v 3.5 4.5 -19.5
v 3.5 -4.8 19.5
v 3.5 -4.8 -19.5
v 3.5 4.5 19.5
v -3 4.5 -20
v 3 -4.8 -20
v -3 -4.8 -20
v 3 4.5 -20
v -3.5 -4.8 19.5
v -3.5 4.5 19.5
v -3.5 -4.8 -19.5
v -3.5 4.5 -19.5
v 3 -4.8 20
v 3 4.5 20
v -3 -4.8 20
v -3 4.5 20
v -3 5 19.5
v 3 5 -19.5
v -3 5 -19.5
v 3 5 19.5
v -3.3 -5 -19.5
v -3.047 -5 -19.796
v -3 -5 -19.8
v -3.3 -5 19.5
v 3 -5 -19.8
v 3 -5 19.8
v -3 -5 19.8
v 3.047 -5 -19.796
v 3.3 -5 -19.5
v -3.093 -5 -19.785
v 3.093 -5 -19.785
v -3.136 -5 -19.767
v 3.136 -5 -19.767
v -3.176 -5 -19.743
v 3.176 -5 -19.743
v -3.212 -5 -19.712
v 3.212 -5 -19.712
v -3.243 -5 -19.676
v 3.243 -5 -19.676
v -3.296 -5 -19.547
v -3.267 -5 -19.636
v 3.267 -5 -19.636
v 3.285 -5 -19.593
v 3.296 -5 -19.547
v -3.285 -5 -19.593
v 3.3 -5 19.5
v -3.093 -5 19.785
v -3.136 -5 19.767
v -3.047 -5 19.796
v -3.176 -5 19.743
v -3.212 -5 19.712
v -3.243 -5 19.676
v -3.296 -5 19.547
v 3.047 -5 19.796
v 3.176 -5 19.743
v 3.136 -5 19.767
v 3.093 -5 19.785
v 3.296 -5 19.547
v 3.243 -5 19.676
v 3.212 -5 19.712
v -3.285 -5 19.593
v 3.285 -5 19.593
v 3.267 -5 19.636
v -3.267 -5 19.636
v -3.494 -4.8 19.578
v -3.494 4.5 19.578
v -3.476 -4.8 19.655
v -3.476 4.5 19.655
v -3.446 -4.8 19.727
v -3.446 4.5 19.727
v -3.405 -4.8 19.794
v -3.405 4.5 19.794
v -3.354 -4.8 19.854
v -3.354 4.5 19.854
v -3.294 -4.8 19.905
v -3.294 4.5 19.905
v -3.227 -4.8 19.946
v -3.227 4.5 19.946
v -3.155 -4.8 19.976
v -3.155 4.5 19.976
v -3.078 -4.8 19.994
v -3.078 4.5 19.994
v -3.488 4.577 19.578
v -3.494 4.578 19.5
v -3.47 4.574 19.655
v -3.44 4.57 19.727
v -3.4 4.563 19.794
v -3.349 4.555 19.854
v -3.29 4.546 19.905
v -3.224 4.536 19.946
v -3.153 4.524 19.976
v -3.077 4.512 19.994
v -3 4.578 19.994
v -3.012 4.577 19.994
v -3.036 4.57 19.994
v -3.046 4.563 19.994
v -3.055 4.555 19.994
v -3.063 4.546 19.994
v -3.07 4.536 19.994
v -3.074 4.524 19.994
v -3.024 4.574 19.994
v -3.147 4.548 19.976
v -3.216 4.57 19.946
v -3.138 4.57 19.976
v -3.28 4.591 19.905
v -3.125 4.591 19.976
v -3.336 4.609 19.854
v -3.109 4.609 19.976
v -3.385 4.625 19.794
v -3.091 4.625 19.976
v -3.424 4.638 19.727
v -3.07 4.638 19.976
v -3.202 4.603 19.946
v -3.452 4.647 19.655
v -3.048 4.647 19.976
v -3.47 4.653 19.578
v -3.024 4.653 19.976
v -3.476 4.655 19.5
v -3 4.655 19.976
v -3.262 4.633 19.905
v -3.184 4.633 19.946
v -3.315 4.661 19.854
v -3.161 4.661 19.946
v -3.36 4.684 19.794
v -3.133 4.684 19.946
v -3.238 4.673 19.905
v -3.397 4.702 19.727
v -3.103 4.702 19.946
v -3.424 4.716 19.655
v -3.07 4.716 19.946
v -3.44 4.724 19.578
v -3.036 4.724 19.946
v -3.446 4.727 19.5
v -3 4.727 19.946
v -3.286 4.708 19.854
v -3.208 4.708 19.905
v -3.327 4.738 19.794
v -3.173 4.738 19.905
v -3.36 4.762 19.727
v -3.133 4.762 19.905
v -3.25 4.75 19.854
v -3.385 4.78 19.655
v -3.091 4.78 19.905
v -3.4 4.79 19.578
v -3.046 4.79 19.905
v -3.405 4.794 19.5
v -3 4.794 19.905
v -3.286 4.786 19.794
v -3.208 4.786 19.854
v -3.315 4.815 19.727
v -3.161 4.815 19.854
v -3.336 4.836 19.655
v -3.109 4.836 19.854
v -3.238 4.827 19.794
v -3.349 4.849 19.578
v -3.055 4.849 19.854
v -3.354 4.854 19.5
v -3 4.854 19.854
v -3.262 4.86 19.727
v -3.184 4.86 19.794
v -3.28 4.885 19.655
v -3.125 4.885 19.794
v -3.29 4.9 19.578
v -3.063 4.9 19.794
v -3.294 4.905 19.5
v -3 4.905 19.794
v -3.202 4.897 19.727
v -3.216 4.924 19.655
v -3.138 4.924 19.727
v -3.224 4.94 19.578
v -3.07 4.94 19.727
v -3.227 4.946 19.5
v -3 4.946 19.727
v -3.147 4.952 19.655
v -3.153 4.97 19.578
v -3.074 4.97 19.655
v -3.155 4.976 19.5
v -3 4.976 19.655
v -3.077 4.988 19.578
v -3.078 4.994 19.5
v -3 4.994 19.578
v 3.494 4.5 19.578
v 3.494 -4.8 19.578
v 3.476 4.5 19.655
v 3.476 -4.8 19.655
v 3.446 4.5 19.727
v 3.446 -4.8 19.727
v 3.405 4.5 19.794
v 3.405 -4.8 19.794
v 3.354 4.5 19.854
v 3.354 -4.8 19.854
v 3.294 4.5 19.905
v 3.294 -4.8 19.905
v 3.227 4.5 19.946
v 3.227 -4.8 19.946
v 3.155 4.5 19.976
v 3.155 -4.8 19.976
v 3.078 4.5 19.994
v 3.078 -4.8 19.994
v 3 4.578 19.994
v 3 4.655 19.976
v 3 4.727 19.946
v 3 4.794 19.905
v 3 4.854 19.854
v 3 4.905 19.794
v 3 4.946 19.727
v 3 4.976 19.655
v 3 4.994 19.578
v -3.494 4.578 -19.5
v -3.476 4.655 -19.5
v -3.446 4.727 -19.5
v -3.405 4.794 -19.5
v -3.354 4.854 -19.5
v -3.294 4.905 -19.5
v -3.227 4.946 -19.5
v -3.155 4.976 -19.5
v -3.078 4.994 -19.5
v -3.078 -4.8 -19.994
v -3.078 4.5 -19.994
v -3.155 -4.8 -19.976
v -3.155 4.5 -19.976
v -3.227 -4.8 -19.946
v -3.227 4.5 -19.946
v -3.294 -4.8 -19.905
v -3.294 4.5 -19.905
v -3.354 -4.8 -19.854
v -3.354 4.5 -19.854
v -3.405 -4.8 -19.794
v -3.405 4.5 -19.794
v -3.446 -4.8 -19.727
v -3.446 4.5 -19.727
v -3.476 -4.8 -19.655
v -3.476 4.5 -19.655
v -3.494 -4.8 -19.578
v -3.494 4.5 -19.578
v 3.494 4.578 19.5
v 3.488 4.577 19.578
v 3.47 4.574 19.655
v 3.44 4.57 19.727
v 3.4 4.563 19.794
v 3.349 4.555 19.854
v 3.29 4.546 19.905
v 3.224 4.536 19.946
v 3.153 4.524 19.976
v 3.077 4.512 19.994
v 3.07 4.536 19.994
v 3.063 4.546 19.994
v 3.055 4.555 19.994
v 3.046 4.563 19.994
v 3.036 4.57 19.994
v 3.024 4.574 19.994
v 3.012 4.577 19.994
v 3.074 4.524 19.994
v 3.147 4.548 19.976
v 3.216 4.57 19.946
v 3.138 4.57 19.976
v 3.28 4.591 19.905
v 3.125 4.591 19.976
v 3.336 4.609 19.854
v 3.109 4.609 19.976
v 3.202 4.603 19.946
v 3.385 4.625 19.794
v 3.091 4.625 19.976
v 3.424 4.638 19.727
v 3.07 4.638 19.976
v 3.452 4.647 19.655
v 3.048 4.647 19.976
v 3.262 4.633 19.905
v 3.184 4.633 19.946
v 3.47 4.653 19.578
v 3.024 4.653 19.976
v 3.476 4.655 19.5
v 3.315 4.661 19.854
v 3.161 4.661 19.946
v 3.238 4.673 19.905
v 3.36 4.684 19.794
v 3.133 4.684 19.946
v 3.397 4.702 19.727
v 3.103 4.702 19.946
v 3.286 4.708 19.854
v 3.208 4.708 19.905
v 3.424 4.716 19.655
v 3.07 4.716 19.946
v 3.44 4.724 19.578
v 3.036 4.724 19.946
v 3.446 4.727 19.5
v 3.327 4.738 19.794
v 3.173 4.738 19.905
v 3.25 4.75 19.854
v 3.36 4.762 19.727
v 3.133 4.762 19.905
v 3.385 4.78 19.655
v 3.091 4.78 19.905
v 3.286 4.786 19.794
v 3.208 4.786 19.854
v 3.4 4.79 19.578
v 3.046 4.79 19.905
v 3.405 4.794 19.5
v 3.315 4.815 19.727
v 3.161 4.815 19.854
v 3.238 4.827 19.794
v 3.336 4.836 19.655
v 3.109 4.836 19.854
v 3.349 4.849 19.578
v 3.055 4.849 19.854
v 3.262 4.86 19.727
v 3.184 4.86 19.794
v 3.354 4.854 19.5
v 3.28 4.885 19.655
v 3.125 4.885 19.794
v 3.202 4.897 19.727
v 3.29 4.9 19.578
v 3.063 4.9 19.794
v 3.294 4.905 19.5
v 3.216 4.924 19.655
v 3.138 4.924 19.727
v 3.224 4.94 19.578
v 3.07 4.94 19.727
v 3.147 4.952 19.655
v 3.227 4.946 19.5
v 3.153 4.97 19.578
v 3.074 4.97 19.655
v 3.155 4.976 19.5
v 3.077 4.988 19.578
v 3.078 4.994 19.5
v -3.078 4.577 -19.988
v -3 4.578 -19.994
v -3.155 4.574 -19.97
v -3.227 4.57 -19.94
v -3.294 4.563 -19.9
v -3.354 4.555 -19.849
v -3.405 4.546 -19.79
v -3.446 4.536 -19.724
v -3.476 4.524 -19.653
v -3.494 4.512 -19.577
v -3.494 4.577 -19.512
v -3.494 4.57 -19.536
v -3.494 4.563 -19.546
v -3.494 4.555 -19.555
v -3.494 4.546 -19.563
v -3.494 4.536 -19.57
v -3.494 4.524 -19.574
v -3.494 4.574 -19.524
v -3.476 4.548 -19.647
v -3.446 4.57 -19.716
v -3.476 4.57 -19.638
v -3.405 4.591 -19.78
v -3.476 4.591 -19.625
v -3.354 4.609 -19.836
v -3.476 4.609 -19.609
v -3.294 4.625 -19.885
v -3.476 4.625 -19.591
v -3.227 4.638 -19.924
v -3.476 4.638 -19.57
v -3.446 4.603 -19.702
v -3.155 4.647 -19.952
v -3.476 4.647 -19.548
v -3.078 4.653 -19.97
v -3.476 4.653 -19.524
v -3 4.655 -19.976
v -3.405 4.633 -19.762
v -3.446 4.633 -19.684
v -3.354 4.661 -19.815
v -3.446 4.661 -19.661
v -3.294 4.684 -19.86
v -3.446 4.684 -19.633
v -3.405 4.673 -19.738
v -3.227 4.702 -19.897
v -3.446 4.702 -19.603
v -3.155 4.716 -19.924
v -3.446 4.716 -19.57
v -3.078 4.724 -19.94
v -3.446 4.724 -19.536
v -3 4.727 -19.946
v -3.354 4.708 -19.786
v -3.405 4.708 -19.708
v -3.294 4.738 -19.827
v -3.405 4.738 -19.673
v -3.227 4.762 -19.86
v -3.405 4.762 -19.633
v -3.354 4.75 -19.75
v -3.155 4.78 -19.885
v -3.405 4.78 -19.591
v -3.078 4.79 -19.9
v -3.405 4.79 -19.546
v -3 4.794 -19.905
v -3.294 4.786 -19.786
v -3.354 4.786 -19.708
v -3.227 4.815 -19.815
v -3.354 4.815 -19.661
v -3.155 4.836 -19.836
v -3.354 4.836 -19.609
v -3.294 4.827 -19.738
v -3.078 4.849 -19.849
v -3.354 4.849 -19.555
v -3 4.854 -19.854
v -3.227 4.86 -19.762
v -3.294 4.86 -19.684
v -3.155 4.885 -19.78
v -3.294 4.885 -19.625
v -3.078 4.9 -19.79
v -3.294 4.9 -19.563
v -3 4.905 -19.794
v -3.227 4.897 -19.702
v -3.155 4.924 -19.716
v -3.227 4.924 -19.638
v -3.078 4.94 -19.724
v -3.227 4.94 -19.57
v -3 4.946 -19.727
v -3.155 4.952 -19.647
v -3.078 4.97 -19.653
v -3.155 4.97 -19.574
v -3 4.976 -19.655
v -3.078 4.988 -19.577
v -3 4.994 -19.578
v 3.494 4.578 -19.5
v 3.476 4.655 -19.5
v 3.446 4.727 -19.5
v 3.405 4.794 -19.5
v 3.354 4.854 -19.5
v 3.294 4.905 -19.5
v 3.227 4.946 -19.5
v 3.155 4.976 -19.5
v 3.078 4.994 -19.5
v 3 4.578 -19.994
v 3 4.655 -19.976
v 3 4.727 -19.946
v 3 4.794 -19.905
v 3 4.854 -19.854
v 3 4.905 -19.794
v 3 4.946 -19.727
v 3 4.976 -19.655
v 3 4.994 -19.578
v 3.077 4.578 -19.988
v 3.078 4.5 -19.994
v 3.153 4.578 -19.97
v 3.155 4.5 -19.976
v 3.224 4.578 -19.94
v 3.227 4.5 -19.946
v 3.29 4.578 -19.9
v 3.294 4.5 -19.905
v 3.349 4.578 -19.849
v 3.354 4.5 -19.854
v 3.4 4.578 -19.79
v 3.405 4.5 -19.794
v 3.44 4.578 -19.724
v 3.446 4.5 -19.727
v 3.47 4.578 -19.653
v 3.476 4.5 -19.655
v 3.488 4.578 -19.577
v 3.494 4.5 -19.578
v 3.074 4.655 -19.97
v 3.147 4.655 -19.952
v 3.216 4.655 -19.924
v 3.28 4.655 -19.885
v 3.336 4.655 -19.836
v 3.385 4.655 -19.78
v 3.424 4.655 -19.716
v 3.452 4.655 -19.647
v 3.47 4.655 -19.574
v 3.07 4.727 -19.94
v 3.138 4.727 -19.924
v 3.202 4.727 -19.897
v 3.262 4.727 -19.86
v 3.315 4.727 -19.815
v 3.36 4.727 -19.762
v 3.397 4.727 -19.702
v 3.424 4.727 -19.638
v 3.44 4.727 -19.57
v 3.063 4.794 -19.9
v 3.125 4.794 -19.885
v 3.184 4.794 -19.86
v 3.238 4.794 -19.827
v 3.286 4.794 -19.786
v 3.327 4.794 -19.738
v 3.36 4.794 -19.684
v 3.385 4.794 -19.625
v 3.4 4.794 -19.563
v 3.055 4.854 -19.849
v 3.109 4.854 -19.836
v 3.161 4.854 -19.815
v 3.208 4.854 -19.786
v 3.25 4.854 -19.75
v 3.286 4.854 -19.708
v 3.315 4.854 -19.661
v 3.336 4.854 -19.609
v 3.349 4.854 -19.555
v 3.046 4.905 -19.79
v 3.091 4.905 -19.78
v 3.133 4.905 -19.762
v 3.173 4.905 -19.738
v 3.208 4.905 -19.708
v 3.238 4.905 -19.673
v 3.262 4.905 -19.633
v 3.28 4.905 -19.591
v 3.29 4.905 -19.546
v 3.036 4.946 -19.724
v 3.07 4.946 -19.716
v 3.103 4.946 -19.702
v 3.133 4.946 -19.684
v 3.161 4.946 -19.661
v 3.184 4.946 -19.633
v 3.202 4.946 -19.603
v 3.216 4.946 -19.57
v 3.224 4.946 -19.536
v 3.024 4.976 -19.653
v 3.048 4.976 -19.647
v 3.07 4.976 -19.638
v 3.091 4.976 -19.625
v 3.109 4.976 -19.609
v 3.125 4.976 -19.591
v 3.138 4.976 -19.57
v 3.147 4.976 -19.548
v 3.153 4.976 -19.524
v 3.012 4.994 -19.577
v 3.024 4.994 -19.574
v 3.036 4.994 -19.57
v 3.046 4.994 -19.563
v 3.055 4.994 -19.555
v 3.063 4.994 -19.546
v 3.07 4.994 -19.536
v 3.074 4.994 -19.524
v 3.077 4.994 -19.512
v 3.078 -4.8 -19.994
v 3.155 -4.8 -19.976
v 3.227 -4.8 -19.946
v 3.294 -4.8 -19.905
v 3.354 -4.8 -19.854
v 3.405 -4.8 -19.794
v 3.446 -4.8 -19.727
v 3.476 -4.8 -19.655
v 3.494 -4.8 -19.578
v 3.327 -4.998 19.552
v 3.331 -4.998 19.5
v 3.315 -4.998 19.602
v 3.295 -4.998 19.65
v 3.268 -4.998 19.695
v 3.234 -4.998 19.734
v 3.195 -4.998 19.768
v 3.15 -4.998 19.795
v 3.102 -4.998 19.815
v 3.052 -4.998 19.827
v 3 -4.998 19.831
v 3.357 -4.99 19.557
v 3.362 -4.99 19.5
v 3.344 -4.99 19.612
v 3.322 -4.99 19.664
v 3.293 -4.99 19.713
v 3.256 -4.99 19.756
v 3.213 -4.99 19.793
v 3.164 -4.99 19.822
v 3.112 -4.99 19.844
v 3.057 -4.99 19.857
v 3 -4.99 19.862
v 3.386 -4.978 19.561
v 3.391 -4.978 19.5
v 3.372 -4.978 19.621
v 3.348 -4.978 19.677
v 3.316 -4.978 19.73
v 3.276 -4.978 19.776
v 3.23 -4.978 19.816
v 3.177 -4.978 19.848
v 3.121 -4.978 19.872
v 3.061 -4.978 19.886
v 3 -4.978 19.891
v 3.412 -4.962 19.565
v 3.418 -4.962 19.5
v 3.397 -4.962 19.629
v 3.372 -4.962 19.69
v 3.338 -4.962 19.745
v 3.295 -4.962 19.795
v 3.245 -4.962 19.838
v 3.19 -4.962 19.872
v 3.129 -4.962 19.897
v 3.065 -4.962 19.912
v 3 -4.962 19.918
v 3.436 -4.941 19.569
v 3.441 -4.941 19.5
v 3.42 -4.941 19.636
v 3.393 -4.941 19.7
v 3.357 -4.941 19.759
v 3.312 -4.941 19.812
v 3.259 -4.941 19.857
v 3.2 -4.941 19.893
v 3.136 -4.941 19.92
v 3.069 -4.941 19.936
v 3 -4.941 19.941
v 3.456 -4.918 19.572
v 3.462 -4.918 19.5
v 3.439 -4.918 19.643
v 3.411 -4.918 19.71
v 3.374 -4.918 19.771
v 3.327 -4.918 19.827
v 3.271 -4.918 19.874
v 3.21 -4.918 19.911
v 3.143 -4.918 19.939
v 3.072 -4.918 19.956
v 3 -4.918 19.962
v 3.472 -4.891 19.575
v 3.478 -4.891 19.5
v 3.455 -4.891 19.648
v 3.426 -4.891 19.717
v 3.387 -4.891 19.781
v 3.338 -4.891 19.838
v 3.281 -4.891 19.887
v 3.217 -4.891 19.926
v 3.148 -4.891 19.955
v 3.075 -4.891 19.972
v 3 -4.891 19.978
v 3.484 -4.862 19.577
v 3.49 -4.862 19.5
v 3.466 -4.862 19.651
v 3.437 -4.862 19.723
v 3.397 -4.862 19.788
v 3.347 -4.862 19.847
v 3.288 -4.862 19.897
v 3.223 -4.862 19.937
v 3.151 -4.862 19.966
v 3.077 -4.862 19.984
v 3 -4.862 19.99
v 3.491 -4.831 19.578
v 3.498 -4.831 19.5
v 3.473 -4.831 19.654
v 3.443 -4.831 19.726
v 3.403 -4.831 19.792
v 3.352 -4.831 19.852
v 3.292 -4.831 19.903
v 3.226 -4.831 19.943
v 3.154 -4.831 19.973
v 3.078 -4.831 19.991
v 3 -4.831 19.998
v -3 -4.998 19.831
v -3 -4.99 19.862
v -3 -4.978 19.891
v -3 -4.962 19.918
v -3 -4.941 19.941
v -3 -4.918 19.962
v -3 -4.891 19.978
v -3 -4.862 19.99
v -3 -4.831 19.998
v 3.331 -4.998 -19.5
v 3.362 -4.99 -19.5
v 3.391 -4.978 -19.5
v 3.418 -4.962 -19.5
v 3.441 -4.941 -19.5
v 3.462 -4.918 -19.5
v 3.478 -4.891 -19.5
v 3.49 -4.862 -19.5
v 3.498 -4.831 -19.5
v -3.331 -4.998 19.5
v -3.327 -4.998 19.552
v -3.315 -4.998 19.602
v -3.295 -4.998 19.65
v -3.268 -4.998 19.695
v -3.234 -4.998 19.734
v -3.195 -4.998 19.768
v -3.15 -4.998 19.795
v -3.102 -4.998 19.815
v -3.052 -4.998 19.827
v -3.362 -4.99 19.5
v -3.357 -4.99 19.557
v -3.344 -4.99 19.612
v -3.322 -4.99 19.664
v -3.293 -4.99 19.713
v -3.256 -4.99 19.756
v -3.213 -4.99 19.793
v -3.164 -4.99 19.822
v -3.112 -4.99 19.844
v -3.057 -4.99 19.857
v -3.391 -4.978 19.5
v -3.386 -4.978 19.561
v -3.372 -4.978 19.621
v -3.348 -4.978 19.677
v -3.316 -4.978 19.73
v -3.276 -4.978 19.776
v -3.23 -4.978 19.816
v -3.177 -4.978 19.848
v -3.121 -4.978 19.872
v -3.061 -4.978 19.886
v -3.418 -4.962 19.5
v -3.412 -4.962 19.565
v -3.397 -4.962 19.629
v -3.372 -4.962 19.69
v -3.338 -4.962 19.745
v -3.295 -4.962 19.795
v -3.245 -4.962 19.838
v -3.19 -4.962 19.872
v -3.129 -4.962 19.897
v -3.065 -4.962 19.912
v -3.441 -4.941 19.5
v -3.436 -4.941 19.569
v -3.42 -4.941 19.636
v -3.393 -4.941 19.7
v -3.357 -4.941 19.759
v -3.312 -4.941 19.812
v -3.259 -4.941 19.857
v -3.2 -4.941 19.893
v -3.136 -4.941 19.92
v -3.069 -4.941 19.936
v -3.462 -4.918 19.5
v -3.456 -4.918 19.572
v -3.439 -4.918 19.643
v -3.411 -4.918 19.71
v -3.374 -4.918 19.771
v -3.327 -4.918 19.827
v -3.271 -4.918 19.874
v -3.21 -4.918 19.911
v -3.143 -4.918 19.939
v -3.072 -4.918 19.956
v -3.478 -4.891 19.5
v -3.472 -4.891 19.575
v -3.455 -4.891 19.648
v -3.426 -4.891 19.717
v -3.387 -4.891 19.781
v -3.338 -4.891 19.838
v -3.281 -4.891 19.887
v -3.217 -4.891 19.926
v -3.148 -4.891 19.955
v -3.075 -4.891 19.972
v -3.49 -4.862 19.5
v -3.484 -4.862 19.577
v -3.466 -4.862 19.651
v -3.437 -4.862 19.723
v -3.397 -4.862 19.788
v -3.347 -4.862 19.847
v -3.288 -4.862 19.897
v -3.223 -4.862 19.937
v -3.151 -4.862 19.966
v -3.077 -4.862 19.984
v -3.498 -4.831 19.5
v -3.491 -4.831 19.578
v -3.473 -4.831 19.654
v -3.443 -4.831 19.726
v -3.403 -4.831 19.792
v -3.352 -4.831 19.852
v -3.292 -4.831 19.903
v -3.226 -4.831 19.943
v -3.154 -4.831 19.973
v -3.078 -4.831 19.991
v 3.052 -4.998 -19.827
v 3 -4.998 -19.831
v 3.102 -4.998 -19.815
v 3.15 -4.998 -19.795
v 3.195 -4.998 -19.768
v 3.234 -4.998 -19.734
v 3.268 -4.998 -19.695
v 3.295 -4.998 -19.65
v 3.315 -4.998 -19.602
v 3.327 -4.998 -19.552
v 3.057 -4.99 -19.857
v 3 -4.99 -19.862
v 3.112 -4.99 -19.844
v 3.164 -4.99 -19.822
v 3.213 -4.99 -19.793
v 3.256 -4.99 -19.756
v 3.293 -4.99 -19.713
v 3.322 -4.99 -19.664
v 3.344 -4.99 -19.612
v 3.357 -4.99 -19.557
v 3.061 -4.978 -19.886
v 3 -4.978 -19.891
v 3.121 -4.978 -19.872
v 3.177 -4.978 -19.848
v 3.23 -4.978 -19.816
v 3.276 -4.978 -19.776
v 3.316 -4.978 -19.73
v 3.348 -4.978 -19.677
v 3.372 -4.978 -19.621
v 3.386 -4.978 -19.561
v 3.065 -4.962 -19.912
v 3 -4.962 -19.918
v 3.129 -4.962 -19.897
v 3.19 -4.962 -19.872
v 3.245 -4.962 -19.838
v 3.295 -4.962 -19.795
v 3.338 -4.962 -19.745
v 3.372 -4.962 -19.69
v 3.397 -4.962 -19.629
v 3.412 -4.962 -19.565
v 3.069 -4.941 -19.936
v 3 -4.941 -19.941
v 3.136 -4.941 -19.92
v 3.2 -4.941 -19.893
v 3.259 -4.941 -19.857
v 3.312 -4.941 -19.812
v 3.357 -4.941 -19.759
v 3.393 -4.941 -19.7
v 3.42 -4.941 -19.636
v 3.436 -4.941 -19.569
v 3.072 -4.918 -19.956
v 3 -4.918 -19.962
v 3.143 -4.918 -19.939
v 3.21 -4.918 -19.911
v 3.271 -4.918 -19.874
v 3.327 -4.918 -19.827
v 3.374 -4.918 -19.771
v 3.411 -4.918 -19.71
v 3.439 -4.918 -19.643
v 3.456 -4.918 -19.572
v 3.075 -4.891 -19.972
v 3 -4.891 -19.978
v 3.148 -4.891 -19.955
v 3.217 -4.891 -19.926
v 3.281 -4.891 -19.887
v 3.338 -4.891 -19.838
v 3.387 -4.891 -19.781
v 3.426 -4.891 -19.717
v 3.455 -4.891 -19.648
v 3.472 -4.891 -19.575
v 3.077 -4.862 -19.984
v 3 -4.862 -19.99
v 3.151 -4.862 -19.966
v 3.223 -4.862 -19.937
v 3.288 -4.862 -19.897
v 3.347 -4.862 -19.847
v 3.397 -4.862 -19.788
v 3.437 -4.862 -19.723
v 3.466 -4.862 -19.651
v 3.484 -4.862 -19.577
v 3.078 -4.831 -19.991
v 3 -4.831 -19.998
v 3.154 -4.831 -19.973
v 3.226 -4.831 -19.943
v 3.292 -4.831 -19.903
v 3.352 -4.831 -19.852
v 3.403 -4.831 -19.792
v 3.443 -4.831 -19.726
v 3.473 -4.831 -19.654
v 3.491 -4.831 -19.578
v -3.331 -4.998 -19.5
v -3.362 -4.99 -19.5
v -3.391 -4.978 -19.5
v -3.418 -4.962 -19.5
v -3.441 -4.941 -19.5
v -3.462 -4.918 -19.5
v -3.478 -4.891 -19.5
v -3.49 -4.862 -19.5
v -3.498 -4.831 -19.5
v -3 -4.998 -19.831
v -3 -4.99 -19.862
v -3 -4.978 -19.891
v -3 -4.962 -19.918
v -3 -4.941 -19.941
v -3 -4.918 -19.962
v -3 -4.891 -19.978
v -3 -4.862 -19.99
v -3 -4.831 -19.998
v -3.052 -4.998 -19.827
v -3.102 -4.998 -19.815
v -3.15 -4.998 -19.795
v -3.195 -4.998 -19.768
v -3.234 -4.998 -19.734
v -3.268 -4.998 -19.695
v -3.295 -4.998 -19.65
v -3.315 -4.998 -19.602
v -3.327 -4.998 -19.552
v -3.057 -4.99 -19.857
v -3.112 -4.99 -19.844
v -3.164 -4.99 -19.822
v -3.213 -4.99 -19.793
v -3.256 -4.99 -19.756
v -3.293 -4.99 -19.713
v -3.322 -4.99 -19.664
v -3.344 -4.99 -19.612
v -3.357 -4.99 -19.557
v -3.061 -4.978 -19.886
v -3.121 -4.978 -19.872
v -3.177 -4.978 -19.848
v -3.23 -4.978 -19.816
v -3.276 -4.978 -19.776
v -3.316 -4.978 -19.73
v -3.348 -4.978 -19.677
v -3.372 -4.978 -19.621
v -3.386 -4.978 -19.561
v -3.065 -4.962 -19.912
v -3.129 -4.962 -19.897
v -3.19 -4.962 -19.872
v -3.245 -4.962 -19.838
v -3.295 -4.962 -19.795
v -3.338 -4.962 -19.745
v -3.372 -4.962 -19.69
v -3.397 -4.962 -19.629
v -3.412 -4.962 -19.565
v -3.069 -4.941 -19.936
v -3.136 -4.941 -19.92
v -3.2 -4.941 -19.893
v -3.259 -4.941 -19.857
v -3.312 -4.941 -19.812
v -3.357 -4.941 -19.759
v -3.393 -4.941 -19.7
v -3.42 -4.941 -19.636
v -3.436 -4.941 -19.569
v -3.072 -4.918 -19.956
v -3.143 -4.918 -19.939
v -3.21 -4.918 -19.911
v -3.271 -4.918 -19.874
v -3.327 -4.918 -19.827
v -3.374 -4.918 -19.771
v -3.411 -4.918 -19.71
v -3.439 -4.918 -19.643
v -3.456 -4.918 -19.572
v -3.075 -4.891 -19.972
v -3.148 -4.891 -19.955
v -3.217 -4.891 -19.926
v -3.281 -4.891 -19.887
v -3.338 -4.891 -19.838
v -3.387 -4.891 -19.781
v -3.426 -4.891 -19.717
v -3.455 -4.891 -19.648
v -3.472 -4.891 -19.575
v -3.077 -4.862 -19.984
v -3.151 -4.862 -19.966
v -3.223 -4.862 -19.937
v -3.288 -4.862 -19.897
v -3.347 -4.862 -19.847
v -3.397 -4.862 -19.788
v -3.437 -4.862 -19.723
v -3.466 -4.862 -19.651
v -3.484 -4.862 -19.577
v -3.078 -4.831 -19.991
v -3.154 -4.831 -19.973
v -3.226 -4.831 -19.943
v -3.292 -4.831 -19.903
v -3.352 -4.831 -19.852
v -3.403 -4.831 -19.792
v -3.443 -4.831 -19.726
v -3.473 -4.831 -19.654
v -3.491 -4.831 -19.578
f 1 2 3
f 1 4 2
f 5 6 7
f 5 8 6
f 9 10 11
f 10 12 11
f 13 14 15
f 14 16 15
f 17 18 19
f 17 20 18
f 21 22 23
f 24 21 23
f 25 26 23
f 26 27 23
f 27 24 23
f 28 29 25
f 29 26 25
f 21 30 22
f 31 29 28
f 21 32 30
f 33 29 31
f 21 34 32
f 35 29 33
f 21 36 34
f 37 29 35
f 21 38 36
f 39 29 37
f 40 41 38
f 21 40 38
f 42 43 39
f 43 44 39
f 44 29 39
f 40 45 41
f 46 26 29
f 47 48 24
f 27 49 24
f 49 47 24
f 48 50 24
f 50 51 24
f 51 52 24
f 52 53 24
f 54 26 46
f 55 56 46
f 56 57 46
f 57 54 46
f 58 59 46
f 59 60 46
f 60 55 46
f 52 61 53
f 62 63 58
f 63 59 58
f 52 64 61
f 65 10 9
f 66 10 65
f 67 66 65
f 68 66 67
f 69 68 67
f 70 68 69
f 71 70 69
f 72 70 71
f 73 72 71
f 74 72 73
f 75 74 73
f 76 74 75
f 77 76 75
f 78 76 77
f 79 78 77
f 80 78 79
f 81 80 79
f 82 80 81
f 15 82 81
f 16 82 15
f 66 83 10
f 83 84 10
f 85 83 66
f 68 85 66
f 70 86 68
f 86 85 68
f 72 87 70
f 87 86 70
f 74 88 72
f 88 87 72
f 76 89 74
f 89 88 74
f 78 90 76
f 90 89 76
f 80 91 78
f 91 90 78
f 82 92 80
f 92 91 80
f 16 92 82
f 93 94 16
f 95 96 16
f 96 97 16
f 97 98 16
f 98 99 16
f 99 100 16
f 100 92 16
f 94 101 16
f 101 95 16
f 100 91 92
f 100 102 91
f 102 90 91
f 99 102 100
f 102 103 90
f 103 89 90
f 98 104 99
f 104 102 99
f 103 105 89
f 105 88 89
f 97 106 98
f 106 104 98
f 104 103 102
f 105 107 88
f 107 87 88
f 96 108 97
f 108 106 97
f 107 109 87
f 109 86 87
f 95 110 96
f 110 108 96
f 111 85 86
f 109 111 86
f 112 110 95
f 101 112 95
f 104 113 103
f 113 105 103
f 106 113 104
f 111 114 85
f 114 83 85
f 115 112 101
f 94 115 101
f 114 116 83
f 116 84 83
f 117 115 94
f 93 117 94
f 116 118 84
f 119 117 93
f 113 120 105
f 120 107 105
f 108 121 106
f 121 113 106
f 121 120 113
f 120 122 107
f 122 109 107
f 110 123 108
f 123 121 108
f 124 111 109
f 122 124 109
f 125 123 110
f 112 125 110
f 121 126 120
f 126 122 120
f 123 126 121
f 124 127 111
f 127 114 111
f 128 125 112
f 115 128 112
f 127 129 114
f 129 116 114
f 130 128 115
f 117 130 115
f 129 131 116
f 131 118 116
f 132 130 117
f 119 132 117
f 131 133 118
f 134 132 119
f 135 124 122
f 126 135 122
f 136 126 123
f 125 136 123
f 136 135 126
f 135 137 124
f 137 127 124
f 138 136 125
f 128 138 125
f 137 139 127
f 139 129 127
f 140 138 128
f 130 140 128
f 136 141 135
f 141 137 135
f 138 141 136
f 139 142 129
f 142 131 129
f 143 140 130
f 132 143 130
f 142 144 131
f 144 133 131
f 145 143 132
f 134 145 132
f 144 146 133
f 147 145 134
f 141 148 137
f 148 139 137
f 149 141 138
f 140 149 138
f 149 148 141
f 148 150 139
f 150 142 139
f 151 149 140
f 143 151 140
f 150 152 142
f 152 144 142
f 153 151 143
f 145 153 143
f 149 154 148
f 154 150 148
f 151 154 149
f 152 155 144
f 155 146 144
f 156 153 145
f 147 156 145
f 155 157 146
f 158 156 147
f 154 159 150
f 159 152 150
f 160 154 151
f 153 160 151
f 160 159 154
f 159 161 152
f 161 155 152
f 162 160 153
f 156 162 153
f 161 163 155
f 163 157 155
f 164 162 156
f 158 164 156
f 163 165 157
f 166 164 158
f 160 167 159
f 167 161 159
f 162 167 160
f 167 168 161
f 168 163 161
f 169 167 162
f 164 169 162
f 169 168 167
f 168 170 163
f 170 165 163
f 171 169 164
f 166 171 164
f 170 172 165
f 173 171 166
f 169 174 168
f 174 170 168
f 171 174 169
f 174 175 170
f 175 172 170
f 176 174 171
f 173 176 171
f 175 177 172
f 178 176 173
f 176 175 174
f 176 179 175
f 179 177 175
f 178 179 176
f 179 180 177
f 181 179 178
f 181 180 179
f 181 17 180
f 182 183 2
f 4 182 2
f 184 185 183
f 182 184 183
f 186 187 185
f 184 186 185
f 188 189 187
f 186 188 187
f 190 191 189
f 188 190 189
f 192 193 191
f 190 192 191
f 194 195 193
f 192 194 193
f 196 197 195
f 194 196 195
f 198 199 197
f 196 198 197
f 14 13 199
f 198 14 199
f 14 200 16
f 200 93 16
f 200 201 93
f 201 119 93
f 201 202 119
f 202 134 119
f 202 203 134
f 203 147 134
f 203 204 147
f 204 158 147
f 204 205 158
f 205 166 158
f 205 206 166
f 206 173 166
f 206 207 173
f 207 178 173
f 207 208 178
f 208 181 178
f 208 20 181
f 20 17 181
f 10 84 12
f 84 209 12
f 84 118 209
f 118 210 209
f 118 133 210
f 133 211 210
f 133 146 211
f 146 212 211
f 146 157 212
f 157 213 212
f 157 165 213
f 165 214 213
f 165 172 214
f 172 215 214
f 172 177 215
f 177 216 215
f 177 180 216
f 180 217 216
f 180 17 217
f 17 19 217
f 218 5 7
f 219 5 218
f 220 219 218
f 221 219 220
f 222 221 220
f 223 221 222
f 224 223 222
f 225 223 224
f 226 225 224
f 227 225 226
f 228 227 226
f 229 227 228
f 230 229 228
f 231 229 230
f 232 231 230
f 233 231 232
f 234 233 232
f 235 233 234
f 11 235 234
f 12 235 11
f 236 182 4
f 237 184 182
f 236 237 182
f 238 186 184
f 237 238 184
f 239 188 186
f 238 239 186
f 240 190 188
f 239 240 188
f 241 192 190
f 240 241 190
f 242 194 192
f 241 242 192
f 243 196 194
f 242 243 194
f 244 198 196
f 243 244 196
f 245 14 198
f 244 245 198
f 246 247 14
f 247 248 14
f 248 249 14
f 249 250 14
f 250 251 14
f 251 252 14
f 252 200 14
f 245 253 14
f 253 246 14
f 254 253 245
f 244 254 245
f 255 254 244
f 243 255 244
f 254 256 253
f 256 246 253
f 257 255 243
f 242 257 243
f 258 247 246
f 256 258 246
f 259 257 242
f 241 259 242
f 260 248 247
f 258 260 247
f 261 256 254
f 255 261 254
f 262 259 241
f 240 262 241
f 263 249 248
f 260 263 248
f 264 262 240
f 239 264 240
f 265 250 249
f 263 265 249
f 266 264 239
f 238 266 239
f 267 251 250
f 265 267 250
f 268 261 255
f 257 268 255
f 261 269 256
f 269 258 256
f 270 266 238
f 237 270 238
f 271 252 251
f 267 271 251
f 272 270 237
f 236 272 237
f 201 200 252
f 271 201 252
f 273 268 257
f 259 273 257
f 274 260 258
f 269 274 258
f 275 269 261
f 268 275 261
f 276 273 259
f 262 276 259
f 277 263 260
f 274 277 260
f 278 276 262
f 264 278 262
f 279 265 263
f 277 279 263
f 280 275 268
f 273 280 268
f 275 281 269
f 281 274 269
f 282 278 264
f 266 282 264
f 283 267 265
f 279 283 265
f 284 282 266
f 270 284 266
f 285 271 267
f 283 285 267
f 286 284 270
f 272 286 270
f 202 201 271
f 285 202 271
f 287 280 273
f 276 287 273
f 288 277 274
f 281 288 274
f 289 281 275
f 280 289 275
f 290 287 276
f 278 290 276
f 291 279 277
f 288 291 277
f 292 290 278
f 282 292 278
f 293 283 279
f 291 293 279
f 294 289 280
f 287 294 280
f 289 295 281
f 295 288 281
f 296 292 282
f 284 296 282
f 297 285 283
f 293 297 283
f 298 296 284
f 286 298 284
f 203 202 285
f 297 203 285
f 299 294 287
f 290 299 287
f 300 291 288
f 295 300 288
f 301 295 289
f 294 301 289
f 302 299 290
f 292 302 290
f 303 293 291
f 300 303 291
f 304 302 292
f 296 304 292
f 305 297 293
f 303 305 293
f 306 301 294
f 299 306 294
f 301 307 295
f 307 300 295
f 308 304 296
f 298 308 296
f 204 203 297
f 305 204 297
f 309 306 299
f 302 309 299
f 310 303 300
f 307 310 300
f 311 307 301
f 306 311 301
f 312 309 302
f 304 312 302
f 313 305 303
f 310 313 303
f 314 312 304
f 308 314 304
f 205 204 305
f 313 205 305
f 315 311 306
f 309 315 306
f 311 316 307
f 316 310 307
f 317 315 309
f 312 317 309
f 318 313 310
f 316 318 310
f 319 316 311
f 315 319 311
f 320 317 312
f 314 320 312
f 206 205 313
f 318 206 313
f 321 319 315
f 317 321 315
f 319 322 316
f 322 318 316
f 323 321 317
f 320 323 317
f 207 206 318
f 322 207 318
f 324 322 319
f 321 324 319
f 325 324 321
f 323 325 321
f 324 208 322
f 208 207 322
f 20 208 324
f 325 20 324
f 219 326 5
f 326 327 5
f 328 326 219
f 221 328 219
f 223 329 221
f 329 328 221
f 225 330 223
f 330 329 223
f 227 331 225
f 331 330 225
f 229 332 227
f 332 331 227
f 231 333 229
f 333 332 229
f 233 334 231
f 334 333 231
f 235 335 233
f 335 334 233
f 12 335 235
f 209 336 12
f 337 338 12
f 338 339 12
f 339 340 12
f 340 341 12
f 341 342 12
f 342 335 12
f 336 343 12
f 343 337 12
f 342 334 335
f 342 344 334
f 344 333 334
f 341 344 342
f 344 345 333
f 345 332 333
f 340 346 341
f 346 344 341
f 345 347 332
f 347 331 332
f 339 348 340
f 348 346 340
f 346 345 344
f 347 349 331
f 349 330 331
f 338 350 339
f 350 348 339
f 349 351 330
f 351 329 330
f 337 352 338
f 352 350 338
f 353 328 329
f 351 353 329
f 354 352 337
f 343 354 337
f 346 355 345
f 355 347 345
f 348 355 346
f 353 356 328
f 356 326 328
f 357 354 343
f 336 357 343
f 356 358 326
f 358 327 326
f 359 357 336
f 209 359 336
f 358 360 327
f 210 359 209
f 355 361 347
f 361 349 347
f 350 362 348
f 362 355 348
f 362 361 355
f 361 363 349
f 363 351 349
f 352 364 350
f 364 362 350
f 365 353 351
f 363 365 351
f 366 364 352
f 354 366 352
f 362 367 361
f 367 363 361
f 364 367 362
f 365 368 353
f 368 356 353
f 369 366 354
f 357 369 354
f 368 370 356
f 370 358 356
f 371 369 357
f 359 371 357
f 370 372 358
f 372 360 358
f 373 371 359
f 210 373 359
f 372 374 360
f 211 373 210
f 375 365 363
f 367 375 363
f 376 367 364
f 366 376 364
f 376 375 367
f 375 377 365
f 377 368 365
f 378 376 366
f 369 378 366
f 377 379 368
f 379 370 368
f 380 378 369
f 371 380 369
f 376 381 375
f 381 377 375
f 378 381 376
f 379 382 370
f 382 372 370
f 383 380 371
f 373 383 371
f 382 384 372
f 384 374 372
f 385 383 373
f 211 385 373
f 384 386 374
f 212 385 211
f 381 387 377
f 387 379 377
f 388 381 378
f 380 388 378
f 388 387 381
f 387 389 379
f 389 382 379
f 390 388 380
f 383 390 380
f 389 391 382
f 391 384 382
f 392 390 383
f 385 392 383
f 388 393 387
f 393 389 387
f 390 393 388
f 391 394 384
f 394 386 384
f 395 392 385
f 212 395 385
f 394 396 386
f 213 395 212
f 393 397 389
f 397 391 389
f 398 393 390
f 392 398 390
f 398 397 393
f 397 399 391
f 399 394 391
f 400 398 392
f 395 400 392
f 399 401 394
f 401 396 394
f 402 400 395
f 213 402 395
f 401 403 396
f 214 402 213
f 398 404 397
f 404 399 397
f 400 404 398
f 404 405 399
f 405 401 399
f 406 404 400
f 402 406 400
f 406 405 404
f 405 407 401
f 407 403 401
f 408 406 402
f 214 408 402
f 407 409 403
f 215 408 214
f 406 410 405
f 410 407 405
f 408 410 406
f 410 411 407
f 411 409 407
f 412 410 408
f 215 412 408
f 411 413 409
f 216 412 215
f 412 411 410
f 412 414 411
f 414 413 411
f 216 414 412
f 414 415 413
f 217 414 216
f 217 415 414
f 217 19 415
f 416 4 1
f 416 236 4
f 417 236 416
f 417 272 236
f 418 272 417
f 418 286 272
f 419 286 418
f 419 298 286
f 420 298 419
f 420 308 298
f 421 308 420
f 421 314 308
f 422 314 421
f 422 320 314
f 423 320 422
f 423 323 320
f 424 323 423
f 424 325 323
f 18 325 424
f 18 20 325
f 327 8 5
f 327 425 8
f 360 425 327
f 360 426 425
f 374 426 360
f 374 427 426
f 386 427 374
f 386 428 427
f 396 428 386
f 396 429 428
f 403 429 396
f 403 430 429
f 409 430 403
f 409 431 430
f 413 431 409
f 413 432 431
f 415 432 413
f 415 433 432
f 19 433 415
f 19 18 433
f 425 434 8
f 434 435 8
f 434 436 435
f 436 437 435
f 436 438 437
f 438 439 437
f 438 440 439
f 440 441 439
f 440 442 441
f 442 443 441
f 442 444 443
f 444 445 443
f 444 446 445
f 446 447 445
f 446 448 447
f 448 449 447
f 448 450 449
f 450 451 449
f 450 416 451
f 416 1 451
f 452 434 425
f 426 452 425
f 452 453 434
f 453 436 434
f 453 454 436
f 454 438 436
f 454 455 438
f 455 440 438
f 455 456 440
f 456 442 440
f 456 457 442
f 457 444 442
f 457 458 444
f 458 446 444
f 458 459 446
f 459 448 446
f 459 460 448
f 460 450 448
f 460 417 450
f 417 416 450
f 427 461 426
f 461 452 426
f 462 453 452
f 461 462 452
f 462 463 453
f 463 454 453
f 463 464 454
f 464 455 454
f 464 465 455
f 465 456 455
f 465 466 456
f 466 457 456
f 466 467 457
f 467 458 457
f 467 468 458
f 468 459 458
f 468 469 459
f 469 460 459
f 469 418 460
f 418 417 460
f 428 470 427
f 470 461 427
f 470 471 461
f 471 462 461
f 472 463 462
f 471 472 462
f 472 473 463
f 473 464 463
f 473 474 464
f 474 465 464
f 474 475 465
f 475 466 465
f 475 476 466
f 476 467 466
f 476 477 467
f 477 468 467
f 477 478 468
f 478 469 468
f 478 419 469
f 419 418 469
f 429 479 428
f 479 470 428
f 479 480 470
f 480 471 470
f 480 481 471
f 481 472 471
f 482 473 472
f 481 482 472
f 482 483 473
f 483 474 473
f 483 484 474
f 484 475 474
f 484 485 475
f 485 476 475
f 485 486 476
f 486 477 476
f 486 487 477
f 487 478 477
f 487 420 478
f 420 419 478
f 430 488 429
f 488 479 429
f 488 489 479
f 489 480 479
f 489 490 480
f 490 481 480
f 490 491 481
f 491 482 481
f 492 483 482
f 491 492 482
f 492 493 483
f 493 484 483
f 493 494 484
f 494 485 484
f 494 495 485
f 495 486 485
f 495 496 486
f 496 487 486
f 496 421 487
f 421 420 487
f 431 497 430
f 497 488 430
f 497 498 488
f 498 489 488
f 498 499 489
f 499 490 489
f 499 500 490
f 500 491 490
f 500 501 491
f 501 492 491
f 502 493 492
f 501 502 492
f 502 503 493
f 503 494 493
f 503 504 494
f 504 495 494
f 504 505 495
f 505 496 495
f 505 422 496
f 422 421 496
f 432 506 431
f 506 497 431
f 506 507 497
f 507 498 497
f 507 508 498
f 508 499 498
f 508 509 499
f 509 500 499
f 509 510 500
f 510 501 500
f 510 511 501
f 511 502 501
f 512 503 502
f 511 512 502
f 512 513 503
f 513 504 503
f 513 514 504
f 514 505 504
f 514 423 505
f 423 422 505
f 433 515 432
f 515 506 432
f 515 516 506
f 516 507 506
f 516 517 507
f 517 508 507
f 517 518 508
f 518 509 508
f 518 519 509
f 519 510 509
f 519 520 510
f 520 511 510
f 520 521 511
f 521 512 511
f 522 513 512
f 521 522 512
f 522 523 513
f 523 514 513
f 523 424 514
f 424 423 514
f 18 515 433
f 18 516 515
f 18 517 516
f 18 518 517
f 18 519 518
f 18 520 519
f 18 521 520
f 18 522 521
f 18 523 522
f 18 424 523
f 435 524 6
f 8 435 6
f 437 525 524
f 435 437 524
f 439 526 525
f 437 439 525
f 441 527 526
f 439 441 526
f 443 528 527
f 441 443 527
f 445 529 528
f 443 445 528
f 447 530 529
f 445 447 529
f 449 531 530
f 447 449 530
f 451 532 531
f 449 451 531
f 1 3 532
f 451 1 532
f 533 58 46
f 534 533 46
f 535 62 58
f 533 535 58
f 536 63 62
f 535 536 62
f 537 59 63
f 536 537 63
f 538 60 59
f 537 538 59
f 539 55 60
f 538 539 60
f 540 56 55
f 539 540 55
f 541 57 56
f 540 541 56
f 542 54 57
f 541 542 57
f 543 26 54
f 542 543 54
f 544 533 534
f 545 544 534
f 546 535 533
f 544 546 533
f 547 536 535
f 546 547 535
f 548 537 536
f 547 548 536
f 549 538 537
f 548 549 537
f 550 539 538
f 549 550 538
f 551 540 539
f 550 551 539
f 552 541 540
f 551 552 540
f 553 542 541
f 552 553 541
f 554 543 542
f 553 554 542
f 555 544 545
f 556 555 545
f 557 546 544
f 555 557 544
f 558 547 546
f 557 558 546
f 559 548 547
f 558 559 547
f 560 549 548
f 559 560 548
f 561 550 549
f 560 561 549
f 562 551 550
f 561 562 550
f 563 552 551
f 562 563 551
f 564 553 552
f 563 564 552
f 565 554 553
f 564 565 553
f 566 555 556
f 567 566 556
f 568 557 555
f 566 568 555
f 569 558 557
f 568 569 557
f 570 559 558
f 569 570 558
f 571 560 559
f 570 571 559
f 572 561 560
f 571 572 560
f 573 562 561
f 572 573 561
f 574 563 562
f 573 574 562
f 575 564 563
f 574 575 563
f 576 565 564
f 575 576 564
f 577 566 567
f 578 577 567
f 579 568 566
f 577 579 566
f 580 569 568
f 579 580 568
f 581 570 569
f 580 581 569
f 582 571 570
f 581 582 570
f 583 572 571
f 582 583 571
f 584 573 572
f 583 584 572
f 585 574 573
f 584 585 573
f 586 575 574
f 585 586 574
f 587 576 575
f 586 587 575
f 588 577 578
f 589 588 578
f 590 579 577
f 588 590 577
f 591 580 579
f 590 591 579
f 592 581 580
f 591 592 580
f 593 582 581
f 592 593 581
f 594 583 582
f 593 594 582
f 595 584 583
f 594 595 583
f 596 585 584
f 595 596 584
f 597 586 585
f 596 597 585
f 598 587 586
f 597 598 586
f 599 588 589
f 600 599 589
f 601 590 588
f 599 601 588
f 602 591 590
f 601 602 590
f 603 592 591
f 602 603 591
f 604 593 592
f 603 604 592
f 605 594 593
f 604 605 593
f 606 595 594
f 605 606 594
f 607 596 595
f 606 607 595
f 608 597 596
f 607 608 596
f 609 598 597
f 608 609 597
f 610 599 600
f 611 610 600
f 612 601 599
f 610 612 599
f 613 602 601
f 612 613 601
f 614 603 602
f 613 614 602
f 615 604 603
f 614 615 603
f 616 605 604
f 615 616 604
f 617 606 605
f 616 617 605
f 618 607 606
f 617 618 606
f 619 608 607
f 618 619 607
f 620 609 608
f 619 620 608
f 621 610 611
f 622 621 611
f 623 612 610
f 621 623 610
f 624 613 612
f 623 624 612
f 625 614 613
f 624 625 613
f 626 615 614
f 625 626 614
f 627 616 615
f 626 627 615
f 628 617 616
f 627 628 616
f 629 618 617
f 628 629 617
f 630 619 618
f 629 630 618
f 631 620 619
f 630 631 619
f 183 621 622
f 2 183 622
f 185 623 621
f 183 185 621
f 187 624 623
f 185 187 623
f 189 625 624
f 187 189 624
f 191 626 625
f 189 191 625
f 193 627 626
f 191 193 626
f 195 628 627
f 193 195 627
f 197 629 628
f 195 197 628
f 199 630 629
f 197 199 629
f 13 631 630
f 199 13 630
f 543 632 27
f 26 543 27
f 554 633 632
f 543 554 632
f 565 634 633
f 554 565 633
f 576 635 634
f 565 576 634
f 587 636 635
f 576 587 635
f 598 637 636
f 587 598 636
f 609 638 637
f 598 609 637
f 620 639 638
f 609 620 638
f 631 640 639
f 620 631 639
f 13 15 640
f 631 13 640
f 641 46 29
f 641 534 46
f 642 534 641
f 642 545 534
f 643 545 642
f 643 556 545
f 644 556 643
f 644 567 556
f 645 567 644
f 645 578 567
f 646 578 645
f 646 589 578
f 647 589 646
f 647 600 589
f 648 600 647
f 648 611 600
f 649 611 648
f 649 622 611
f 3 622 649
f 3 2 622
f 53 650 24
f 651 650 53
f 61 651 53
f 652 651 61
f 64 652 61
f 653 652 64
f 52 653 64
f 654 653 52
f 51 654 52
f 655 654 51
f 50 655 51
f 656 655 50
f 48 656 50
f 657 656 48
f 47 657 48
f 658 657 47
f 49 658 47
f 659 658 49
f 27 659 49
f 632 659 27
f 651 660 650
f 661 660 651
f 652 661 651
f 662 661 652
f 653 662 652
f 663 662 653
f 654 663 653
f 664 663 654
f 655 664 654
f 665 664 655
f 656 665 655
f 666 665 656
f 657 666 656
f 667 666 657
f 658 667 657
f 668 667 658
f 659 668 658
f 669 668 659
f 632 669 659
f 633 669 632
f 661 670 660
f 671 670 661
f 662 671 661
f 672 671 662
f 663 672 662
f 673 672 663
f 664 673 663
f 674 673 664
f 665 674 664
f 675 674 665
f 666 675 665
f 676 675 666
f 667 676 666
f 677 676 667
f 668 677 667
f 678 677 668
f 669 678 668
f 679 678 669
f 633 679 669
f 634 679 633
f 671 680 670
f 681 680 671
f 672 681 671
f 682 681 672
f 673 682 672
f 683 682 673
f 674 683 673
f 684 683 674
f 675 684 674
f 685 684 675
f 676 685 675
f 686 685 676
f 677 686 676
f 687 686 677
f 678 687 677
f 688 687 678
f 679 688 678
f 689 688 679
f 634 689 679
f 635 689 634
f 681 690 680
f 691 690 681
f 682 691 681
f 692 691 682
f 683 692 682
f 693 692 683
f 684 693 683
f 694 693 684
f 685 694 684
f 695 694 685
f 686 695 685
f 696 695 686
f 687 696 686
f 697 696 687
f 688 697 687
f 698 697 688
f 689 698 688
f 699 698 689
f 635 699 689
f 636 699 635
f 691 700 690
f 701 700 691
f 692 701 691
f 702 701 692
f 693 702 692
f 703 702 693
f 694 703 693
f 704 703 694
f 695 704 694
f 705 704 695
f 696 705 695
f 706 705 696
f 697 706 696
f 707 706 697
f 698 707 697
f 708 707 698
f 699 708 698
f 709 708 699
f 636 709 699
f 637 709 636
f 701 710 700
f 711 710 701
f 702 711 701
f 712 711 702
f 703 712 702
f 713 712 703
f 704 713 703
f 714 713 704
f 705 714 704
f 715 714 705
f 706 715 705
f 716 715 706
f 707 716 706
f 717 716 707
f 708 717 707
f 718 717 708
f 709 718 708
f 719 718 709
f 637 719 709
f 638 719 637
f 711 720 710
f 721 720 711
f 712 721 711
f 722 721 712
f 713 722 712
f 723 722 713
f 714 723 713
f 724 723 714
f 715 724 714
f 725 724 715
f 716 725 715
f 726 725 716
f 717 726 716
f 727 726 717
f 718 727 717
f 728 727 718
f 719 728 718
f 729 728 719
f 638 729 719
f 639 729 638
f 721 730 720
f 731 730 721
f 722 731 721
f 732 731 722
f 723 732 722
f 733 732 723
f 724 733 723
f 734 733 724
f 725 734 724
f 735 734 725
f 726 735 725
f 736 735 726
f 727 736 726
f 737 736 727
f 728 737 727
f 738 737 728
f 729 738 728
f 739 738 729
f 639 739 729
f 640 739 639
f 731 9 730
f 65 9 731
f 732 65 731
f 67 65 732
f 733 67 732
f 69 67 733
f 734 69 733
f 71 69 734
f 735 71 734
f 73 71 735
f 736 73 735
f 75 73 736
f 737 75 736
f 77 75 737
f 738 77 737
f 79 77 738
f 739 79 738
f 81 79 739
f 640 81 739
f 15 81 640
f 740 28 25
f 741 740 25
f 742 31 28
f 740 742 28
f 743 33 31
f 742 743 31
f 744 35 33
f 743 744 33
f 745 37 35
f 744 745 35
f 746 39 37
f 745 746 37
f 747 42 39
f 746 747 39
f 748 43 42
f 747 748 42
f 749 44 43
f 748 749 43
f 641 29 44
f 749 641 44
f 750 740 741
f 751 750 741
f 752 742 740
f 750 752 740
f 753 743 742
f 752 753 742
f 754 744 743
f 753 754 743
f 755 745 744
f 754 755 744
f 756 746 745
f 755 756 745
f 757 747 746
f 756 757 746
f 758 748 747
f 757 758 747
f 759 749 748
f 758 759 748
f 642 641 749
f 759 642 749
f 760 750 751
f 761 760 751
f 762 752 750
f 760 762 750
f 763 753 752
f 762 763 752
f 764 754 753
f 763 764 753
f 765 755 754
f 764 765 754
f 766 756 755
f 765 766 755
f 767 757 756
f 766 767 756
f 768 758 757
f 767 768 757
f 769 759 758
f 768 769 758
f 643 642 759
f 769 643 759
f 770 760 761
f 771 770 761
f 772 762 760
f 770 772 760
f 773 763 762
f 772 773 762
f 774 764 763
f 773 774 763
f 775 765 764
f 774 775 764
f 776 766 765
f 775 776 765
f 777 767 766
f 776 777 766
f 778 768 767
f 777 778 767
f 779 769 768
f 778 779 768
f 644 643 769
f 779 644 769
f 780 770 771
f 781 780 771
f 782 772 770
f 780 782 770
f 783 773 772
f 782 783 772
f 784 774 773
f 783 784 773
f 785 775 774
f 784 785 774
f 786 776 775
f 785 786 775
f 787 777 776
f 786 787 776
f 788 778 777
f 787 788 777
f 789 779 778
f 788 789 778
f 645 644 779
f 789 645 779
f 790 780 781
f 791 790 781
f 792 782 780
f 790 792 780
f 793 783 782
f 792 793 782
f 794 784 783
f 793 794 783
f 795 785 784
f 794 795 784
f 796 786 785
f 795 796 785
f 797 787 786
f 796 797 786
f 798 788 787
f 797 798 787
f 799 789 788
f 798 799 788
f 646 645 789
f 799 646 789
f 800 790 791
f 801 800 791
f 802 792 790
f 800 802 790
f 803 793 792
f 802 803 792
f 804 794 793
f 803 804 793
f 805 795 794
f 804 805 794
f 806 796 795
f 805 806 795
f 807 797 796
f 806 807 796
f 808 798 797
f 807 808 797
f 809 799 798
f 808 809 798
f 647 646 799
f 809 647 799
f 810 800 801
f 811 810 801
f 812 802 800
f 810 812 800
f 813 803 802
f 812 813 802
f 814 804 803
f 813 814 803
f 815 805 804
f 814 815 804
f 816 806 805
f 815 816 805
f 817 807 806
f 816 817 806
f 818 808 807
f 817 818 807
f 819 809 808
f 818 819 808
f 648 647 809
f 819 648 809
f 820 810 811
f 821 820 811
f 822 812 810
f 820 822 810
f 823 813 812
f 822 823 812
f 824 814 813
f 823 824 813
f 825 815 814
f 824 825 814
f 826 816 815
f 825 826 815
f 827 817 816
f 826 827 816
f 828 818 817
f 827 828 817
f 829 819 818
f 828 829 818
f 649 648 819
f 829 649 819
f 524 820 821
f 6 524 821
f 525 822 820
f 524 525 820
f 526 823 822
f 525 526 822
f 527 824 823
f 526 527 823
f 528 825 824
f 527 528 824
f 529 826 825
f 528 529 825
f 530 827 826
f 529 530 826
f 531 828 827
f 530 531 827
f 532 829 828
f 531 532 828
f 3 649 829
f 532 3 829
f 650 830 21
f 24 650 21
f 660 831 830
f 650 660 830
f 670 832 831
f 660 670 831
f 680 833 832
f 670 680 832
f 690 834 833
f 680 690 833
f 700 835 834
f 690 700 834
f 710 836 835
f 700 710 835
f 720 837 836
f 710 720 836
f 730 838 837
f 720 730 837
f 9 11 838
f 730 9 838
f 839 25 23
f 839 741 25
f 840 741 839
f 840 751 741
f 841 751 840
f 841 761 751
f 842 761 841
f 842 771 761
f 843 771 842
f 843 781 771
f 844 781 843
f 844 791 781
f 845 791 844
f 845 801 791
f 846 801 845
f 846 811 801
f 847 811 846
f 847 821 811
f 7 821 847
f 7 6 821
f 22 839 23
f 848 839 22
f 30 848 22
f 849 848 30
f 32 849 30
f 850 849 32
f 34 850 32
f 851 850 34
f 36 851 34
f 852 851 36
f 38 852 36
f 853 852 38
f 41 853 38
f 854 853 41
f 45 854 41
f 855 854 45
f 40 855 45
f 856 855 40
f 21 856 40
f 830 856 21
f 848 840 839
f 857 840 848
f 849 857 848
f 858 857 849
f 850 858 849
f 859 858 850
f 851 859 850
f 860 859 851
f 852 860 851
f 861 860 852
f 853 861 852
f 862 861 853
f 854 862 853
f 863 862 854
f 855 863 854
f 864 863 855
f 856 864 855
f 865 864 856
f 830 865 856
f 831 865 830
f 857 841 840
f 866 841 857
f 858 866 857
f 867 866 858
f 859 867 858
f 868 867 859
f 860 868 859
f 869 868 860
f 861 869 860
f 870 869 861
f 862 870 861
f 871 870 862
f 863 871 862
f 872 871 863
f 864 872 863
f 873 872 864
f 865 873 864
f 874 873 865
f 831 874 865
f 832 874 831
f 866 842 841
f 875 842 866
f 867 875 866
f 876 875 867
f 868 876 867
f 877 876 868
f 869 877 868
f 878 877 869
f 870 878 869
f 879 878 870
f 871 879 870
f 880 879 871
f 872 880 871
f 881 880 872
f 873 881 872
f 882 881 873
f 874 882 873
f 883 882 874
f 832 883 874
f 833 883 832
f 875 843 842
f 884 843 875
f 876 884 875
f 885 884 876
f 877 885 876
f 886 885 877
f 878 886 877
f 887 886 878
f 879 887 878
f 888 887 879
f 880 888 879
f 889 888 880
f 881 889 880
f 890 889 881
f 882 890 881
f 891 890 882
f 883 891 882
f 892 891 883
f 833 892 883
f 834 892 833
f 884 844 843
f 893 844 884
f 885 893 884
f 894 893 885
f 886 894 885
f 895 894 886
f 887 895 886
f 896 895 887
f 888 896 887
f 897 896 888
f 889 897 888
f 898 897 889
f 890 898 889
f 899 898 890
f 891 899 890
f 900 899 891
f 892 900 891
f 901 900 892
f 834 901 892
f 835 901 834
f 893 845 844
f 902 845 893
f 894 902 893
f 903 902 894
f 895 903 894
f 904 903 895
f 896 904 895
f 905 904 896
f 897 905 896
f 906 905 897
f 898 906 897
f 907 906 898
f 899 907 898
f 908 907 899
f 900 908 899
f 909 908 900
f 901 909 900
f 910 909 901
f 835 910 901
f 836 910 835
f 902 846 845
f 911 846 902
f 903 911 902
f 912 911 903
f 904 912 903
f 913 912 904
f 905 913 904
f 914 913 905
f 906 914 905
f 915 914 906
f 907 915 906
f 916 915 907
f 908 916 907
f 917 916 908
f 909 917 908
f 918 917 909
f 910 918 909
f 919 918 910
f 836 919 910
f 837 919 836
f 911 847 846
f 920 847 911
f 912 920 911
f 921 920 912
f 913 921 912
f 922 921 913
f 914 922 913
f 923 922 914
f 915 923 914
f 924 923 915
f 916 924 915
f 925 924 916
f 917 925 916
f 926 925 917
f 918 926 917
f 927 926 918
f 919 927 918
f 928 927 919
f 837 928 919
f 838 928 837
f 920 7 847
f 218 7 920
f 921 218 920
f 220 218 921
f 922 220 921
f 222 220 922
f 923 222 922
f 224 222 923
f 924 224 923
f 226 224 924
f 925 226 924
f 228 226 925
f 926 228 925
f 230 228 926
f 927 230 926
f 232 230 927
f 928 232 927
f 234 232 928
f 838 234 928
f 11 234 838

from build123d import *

# Parameters (mm, degrees)
SKETCH1_W           = 7
SKETCH1_H           = 40
BOSS_EXTRUDE1_DEPTH = 5
FILLET1_R           = 0.5
FILLET2_R           = 0.2


with BuildPart() as part:
    # Sketch1 → Boss-Extrude1 (new, symmetric)
    with BuildSketch(Plane(origin=(0, 0, 0), x_dir=(1, 0, 0), z_dir=(0, 1, 0))):
        Rectangle(SKETCH1_W, SKETCH1_H)
    extrude(amount=BOSS_EXTRUDE1_DEPTH, both=True)

    # Fillet1
    fillet1_edges = [part.edges().sort_by_distance(p)[0] for p in [
        (-3.5, 5, 0),
        (0, 5, 20),
        (3.5, 5, 0),
        (3.5, 0, 20),
        (-3.5, 0, 20),
        (-3.5, 0, -20),
        (3.5, 0, -20),
        (0, 5, -20),
    ]]
    fillet(fillet1_edges, radius=FILLET1_R)

    # Fillet2
    fillet2_edges = [part.edges().sort_by_distance(p)[0] for p in [
        (0, -5, -20),
        (3.5, -5, 0),
        (0, -5, 20),
        (-3.5, -5, 0),
        (-3.353553391, -5, -19.853553391),
        (-3.353553391, -5, 19.853553391),
        (3.353553391, -5, 19.853553391),
        (3.353553391, -5, -19.853553391),
    ]]
    fillet(fillet2_edges, radius=FILLET2_R)


solid = part.part
